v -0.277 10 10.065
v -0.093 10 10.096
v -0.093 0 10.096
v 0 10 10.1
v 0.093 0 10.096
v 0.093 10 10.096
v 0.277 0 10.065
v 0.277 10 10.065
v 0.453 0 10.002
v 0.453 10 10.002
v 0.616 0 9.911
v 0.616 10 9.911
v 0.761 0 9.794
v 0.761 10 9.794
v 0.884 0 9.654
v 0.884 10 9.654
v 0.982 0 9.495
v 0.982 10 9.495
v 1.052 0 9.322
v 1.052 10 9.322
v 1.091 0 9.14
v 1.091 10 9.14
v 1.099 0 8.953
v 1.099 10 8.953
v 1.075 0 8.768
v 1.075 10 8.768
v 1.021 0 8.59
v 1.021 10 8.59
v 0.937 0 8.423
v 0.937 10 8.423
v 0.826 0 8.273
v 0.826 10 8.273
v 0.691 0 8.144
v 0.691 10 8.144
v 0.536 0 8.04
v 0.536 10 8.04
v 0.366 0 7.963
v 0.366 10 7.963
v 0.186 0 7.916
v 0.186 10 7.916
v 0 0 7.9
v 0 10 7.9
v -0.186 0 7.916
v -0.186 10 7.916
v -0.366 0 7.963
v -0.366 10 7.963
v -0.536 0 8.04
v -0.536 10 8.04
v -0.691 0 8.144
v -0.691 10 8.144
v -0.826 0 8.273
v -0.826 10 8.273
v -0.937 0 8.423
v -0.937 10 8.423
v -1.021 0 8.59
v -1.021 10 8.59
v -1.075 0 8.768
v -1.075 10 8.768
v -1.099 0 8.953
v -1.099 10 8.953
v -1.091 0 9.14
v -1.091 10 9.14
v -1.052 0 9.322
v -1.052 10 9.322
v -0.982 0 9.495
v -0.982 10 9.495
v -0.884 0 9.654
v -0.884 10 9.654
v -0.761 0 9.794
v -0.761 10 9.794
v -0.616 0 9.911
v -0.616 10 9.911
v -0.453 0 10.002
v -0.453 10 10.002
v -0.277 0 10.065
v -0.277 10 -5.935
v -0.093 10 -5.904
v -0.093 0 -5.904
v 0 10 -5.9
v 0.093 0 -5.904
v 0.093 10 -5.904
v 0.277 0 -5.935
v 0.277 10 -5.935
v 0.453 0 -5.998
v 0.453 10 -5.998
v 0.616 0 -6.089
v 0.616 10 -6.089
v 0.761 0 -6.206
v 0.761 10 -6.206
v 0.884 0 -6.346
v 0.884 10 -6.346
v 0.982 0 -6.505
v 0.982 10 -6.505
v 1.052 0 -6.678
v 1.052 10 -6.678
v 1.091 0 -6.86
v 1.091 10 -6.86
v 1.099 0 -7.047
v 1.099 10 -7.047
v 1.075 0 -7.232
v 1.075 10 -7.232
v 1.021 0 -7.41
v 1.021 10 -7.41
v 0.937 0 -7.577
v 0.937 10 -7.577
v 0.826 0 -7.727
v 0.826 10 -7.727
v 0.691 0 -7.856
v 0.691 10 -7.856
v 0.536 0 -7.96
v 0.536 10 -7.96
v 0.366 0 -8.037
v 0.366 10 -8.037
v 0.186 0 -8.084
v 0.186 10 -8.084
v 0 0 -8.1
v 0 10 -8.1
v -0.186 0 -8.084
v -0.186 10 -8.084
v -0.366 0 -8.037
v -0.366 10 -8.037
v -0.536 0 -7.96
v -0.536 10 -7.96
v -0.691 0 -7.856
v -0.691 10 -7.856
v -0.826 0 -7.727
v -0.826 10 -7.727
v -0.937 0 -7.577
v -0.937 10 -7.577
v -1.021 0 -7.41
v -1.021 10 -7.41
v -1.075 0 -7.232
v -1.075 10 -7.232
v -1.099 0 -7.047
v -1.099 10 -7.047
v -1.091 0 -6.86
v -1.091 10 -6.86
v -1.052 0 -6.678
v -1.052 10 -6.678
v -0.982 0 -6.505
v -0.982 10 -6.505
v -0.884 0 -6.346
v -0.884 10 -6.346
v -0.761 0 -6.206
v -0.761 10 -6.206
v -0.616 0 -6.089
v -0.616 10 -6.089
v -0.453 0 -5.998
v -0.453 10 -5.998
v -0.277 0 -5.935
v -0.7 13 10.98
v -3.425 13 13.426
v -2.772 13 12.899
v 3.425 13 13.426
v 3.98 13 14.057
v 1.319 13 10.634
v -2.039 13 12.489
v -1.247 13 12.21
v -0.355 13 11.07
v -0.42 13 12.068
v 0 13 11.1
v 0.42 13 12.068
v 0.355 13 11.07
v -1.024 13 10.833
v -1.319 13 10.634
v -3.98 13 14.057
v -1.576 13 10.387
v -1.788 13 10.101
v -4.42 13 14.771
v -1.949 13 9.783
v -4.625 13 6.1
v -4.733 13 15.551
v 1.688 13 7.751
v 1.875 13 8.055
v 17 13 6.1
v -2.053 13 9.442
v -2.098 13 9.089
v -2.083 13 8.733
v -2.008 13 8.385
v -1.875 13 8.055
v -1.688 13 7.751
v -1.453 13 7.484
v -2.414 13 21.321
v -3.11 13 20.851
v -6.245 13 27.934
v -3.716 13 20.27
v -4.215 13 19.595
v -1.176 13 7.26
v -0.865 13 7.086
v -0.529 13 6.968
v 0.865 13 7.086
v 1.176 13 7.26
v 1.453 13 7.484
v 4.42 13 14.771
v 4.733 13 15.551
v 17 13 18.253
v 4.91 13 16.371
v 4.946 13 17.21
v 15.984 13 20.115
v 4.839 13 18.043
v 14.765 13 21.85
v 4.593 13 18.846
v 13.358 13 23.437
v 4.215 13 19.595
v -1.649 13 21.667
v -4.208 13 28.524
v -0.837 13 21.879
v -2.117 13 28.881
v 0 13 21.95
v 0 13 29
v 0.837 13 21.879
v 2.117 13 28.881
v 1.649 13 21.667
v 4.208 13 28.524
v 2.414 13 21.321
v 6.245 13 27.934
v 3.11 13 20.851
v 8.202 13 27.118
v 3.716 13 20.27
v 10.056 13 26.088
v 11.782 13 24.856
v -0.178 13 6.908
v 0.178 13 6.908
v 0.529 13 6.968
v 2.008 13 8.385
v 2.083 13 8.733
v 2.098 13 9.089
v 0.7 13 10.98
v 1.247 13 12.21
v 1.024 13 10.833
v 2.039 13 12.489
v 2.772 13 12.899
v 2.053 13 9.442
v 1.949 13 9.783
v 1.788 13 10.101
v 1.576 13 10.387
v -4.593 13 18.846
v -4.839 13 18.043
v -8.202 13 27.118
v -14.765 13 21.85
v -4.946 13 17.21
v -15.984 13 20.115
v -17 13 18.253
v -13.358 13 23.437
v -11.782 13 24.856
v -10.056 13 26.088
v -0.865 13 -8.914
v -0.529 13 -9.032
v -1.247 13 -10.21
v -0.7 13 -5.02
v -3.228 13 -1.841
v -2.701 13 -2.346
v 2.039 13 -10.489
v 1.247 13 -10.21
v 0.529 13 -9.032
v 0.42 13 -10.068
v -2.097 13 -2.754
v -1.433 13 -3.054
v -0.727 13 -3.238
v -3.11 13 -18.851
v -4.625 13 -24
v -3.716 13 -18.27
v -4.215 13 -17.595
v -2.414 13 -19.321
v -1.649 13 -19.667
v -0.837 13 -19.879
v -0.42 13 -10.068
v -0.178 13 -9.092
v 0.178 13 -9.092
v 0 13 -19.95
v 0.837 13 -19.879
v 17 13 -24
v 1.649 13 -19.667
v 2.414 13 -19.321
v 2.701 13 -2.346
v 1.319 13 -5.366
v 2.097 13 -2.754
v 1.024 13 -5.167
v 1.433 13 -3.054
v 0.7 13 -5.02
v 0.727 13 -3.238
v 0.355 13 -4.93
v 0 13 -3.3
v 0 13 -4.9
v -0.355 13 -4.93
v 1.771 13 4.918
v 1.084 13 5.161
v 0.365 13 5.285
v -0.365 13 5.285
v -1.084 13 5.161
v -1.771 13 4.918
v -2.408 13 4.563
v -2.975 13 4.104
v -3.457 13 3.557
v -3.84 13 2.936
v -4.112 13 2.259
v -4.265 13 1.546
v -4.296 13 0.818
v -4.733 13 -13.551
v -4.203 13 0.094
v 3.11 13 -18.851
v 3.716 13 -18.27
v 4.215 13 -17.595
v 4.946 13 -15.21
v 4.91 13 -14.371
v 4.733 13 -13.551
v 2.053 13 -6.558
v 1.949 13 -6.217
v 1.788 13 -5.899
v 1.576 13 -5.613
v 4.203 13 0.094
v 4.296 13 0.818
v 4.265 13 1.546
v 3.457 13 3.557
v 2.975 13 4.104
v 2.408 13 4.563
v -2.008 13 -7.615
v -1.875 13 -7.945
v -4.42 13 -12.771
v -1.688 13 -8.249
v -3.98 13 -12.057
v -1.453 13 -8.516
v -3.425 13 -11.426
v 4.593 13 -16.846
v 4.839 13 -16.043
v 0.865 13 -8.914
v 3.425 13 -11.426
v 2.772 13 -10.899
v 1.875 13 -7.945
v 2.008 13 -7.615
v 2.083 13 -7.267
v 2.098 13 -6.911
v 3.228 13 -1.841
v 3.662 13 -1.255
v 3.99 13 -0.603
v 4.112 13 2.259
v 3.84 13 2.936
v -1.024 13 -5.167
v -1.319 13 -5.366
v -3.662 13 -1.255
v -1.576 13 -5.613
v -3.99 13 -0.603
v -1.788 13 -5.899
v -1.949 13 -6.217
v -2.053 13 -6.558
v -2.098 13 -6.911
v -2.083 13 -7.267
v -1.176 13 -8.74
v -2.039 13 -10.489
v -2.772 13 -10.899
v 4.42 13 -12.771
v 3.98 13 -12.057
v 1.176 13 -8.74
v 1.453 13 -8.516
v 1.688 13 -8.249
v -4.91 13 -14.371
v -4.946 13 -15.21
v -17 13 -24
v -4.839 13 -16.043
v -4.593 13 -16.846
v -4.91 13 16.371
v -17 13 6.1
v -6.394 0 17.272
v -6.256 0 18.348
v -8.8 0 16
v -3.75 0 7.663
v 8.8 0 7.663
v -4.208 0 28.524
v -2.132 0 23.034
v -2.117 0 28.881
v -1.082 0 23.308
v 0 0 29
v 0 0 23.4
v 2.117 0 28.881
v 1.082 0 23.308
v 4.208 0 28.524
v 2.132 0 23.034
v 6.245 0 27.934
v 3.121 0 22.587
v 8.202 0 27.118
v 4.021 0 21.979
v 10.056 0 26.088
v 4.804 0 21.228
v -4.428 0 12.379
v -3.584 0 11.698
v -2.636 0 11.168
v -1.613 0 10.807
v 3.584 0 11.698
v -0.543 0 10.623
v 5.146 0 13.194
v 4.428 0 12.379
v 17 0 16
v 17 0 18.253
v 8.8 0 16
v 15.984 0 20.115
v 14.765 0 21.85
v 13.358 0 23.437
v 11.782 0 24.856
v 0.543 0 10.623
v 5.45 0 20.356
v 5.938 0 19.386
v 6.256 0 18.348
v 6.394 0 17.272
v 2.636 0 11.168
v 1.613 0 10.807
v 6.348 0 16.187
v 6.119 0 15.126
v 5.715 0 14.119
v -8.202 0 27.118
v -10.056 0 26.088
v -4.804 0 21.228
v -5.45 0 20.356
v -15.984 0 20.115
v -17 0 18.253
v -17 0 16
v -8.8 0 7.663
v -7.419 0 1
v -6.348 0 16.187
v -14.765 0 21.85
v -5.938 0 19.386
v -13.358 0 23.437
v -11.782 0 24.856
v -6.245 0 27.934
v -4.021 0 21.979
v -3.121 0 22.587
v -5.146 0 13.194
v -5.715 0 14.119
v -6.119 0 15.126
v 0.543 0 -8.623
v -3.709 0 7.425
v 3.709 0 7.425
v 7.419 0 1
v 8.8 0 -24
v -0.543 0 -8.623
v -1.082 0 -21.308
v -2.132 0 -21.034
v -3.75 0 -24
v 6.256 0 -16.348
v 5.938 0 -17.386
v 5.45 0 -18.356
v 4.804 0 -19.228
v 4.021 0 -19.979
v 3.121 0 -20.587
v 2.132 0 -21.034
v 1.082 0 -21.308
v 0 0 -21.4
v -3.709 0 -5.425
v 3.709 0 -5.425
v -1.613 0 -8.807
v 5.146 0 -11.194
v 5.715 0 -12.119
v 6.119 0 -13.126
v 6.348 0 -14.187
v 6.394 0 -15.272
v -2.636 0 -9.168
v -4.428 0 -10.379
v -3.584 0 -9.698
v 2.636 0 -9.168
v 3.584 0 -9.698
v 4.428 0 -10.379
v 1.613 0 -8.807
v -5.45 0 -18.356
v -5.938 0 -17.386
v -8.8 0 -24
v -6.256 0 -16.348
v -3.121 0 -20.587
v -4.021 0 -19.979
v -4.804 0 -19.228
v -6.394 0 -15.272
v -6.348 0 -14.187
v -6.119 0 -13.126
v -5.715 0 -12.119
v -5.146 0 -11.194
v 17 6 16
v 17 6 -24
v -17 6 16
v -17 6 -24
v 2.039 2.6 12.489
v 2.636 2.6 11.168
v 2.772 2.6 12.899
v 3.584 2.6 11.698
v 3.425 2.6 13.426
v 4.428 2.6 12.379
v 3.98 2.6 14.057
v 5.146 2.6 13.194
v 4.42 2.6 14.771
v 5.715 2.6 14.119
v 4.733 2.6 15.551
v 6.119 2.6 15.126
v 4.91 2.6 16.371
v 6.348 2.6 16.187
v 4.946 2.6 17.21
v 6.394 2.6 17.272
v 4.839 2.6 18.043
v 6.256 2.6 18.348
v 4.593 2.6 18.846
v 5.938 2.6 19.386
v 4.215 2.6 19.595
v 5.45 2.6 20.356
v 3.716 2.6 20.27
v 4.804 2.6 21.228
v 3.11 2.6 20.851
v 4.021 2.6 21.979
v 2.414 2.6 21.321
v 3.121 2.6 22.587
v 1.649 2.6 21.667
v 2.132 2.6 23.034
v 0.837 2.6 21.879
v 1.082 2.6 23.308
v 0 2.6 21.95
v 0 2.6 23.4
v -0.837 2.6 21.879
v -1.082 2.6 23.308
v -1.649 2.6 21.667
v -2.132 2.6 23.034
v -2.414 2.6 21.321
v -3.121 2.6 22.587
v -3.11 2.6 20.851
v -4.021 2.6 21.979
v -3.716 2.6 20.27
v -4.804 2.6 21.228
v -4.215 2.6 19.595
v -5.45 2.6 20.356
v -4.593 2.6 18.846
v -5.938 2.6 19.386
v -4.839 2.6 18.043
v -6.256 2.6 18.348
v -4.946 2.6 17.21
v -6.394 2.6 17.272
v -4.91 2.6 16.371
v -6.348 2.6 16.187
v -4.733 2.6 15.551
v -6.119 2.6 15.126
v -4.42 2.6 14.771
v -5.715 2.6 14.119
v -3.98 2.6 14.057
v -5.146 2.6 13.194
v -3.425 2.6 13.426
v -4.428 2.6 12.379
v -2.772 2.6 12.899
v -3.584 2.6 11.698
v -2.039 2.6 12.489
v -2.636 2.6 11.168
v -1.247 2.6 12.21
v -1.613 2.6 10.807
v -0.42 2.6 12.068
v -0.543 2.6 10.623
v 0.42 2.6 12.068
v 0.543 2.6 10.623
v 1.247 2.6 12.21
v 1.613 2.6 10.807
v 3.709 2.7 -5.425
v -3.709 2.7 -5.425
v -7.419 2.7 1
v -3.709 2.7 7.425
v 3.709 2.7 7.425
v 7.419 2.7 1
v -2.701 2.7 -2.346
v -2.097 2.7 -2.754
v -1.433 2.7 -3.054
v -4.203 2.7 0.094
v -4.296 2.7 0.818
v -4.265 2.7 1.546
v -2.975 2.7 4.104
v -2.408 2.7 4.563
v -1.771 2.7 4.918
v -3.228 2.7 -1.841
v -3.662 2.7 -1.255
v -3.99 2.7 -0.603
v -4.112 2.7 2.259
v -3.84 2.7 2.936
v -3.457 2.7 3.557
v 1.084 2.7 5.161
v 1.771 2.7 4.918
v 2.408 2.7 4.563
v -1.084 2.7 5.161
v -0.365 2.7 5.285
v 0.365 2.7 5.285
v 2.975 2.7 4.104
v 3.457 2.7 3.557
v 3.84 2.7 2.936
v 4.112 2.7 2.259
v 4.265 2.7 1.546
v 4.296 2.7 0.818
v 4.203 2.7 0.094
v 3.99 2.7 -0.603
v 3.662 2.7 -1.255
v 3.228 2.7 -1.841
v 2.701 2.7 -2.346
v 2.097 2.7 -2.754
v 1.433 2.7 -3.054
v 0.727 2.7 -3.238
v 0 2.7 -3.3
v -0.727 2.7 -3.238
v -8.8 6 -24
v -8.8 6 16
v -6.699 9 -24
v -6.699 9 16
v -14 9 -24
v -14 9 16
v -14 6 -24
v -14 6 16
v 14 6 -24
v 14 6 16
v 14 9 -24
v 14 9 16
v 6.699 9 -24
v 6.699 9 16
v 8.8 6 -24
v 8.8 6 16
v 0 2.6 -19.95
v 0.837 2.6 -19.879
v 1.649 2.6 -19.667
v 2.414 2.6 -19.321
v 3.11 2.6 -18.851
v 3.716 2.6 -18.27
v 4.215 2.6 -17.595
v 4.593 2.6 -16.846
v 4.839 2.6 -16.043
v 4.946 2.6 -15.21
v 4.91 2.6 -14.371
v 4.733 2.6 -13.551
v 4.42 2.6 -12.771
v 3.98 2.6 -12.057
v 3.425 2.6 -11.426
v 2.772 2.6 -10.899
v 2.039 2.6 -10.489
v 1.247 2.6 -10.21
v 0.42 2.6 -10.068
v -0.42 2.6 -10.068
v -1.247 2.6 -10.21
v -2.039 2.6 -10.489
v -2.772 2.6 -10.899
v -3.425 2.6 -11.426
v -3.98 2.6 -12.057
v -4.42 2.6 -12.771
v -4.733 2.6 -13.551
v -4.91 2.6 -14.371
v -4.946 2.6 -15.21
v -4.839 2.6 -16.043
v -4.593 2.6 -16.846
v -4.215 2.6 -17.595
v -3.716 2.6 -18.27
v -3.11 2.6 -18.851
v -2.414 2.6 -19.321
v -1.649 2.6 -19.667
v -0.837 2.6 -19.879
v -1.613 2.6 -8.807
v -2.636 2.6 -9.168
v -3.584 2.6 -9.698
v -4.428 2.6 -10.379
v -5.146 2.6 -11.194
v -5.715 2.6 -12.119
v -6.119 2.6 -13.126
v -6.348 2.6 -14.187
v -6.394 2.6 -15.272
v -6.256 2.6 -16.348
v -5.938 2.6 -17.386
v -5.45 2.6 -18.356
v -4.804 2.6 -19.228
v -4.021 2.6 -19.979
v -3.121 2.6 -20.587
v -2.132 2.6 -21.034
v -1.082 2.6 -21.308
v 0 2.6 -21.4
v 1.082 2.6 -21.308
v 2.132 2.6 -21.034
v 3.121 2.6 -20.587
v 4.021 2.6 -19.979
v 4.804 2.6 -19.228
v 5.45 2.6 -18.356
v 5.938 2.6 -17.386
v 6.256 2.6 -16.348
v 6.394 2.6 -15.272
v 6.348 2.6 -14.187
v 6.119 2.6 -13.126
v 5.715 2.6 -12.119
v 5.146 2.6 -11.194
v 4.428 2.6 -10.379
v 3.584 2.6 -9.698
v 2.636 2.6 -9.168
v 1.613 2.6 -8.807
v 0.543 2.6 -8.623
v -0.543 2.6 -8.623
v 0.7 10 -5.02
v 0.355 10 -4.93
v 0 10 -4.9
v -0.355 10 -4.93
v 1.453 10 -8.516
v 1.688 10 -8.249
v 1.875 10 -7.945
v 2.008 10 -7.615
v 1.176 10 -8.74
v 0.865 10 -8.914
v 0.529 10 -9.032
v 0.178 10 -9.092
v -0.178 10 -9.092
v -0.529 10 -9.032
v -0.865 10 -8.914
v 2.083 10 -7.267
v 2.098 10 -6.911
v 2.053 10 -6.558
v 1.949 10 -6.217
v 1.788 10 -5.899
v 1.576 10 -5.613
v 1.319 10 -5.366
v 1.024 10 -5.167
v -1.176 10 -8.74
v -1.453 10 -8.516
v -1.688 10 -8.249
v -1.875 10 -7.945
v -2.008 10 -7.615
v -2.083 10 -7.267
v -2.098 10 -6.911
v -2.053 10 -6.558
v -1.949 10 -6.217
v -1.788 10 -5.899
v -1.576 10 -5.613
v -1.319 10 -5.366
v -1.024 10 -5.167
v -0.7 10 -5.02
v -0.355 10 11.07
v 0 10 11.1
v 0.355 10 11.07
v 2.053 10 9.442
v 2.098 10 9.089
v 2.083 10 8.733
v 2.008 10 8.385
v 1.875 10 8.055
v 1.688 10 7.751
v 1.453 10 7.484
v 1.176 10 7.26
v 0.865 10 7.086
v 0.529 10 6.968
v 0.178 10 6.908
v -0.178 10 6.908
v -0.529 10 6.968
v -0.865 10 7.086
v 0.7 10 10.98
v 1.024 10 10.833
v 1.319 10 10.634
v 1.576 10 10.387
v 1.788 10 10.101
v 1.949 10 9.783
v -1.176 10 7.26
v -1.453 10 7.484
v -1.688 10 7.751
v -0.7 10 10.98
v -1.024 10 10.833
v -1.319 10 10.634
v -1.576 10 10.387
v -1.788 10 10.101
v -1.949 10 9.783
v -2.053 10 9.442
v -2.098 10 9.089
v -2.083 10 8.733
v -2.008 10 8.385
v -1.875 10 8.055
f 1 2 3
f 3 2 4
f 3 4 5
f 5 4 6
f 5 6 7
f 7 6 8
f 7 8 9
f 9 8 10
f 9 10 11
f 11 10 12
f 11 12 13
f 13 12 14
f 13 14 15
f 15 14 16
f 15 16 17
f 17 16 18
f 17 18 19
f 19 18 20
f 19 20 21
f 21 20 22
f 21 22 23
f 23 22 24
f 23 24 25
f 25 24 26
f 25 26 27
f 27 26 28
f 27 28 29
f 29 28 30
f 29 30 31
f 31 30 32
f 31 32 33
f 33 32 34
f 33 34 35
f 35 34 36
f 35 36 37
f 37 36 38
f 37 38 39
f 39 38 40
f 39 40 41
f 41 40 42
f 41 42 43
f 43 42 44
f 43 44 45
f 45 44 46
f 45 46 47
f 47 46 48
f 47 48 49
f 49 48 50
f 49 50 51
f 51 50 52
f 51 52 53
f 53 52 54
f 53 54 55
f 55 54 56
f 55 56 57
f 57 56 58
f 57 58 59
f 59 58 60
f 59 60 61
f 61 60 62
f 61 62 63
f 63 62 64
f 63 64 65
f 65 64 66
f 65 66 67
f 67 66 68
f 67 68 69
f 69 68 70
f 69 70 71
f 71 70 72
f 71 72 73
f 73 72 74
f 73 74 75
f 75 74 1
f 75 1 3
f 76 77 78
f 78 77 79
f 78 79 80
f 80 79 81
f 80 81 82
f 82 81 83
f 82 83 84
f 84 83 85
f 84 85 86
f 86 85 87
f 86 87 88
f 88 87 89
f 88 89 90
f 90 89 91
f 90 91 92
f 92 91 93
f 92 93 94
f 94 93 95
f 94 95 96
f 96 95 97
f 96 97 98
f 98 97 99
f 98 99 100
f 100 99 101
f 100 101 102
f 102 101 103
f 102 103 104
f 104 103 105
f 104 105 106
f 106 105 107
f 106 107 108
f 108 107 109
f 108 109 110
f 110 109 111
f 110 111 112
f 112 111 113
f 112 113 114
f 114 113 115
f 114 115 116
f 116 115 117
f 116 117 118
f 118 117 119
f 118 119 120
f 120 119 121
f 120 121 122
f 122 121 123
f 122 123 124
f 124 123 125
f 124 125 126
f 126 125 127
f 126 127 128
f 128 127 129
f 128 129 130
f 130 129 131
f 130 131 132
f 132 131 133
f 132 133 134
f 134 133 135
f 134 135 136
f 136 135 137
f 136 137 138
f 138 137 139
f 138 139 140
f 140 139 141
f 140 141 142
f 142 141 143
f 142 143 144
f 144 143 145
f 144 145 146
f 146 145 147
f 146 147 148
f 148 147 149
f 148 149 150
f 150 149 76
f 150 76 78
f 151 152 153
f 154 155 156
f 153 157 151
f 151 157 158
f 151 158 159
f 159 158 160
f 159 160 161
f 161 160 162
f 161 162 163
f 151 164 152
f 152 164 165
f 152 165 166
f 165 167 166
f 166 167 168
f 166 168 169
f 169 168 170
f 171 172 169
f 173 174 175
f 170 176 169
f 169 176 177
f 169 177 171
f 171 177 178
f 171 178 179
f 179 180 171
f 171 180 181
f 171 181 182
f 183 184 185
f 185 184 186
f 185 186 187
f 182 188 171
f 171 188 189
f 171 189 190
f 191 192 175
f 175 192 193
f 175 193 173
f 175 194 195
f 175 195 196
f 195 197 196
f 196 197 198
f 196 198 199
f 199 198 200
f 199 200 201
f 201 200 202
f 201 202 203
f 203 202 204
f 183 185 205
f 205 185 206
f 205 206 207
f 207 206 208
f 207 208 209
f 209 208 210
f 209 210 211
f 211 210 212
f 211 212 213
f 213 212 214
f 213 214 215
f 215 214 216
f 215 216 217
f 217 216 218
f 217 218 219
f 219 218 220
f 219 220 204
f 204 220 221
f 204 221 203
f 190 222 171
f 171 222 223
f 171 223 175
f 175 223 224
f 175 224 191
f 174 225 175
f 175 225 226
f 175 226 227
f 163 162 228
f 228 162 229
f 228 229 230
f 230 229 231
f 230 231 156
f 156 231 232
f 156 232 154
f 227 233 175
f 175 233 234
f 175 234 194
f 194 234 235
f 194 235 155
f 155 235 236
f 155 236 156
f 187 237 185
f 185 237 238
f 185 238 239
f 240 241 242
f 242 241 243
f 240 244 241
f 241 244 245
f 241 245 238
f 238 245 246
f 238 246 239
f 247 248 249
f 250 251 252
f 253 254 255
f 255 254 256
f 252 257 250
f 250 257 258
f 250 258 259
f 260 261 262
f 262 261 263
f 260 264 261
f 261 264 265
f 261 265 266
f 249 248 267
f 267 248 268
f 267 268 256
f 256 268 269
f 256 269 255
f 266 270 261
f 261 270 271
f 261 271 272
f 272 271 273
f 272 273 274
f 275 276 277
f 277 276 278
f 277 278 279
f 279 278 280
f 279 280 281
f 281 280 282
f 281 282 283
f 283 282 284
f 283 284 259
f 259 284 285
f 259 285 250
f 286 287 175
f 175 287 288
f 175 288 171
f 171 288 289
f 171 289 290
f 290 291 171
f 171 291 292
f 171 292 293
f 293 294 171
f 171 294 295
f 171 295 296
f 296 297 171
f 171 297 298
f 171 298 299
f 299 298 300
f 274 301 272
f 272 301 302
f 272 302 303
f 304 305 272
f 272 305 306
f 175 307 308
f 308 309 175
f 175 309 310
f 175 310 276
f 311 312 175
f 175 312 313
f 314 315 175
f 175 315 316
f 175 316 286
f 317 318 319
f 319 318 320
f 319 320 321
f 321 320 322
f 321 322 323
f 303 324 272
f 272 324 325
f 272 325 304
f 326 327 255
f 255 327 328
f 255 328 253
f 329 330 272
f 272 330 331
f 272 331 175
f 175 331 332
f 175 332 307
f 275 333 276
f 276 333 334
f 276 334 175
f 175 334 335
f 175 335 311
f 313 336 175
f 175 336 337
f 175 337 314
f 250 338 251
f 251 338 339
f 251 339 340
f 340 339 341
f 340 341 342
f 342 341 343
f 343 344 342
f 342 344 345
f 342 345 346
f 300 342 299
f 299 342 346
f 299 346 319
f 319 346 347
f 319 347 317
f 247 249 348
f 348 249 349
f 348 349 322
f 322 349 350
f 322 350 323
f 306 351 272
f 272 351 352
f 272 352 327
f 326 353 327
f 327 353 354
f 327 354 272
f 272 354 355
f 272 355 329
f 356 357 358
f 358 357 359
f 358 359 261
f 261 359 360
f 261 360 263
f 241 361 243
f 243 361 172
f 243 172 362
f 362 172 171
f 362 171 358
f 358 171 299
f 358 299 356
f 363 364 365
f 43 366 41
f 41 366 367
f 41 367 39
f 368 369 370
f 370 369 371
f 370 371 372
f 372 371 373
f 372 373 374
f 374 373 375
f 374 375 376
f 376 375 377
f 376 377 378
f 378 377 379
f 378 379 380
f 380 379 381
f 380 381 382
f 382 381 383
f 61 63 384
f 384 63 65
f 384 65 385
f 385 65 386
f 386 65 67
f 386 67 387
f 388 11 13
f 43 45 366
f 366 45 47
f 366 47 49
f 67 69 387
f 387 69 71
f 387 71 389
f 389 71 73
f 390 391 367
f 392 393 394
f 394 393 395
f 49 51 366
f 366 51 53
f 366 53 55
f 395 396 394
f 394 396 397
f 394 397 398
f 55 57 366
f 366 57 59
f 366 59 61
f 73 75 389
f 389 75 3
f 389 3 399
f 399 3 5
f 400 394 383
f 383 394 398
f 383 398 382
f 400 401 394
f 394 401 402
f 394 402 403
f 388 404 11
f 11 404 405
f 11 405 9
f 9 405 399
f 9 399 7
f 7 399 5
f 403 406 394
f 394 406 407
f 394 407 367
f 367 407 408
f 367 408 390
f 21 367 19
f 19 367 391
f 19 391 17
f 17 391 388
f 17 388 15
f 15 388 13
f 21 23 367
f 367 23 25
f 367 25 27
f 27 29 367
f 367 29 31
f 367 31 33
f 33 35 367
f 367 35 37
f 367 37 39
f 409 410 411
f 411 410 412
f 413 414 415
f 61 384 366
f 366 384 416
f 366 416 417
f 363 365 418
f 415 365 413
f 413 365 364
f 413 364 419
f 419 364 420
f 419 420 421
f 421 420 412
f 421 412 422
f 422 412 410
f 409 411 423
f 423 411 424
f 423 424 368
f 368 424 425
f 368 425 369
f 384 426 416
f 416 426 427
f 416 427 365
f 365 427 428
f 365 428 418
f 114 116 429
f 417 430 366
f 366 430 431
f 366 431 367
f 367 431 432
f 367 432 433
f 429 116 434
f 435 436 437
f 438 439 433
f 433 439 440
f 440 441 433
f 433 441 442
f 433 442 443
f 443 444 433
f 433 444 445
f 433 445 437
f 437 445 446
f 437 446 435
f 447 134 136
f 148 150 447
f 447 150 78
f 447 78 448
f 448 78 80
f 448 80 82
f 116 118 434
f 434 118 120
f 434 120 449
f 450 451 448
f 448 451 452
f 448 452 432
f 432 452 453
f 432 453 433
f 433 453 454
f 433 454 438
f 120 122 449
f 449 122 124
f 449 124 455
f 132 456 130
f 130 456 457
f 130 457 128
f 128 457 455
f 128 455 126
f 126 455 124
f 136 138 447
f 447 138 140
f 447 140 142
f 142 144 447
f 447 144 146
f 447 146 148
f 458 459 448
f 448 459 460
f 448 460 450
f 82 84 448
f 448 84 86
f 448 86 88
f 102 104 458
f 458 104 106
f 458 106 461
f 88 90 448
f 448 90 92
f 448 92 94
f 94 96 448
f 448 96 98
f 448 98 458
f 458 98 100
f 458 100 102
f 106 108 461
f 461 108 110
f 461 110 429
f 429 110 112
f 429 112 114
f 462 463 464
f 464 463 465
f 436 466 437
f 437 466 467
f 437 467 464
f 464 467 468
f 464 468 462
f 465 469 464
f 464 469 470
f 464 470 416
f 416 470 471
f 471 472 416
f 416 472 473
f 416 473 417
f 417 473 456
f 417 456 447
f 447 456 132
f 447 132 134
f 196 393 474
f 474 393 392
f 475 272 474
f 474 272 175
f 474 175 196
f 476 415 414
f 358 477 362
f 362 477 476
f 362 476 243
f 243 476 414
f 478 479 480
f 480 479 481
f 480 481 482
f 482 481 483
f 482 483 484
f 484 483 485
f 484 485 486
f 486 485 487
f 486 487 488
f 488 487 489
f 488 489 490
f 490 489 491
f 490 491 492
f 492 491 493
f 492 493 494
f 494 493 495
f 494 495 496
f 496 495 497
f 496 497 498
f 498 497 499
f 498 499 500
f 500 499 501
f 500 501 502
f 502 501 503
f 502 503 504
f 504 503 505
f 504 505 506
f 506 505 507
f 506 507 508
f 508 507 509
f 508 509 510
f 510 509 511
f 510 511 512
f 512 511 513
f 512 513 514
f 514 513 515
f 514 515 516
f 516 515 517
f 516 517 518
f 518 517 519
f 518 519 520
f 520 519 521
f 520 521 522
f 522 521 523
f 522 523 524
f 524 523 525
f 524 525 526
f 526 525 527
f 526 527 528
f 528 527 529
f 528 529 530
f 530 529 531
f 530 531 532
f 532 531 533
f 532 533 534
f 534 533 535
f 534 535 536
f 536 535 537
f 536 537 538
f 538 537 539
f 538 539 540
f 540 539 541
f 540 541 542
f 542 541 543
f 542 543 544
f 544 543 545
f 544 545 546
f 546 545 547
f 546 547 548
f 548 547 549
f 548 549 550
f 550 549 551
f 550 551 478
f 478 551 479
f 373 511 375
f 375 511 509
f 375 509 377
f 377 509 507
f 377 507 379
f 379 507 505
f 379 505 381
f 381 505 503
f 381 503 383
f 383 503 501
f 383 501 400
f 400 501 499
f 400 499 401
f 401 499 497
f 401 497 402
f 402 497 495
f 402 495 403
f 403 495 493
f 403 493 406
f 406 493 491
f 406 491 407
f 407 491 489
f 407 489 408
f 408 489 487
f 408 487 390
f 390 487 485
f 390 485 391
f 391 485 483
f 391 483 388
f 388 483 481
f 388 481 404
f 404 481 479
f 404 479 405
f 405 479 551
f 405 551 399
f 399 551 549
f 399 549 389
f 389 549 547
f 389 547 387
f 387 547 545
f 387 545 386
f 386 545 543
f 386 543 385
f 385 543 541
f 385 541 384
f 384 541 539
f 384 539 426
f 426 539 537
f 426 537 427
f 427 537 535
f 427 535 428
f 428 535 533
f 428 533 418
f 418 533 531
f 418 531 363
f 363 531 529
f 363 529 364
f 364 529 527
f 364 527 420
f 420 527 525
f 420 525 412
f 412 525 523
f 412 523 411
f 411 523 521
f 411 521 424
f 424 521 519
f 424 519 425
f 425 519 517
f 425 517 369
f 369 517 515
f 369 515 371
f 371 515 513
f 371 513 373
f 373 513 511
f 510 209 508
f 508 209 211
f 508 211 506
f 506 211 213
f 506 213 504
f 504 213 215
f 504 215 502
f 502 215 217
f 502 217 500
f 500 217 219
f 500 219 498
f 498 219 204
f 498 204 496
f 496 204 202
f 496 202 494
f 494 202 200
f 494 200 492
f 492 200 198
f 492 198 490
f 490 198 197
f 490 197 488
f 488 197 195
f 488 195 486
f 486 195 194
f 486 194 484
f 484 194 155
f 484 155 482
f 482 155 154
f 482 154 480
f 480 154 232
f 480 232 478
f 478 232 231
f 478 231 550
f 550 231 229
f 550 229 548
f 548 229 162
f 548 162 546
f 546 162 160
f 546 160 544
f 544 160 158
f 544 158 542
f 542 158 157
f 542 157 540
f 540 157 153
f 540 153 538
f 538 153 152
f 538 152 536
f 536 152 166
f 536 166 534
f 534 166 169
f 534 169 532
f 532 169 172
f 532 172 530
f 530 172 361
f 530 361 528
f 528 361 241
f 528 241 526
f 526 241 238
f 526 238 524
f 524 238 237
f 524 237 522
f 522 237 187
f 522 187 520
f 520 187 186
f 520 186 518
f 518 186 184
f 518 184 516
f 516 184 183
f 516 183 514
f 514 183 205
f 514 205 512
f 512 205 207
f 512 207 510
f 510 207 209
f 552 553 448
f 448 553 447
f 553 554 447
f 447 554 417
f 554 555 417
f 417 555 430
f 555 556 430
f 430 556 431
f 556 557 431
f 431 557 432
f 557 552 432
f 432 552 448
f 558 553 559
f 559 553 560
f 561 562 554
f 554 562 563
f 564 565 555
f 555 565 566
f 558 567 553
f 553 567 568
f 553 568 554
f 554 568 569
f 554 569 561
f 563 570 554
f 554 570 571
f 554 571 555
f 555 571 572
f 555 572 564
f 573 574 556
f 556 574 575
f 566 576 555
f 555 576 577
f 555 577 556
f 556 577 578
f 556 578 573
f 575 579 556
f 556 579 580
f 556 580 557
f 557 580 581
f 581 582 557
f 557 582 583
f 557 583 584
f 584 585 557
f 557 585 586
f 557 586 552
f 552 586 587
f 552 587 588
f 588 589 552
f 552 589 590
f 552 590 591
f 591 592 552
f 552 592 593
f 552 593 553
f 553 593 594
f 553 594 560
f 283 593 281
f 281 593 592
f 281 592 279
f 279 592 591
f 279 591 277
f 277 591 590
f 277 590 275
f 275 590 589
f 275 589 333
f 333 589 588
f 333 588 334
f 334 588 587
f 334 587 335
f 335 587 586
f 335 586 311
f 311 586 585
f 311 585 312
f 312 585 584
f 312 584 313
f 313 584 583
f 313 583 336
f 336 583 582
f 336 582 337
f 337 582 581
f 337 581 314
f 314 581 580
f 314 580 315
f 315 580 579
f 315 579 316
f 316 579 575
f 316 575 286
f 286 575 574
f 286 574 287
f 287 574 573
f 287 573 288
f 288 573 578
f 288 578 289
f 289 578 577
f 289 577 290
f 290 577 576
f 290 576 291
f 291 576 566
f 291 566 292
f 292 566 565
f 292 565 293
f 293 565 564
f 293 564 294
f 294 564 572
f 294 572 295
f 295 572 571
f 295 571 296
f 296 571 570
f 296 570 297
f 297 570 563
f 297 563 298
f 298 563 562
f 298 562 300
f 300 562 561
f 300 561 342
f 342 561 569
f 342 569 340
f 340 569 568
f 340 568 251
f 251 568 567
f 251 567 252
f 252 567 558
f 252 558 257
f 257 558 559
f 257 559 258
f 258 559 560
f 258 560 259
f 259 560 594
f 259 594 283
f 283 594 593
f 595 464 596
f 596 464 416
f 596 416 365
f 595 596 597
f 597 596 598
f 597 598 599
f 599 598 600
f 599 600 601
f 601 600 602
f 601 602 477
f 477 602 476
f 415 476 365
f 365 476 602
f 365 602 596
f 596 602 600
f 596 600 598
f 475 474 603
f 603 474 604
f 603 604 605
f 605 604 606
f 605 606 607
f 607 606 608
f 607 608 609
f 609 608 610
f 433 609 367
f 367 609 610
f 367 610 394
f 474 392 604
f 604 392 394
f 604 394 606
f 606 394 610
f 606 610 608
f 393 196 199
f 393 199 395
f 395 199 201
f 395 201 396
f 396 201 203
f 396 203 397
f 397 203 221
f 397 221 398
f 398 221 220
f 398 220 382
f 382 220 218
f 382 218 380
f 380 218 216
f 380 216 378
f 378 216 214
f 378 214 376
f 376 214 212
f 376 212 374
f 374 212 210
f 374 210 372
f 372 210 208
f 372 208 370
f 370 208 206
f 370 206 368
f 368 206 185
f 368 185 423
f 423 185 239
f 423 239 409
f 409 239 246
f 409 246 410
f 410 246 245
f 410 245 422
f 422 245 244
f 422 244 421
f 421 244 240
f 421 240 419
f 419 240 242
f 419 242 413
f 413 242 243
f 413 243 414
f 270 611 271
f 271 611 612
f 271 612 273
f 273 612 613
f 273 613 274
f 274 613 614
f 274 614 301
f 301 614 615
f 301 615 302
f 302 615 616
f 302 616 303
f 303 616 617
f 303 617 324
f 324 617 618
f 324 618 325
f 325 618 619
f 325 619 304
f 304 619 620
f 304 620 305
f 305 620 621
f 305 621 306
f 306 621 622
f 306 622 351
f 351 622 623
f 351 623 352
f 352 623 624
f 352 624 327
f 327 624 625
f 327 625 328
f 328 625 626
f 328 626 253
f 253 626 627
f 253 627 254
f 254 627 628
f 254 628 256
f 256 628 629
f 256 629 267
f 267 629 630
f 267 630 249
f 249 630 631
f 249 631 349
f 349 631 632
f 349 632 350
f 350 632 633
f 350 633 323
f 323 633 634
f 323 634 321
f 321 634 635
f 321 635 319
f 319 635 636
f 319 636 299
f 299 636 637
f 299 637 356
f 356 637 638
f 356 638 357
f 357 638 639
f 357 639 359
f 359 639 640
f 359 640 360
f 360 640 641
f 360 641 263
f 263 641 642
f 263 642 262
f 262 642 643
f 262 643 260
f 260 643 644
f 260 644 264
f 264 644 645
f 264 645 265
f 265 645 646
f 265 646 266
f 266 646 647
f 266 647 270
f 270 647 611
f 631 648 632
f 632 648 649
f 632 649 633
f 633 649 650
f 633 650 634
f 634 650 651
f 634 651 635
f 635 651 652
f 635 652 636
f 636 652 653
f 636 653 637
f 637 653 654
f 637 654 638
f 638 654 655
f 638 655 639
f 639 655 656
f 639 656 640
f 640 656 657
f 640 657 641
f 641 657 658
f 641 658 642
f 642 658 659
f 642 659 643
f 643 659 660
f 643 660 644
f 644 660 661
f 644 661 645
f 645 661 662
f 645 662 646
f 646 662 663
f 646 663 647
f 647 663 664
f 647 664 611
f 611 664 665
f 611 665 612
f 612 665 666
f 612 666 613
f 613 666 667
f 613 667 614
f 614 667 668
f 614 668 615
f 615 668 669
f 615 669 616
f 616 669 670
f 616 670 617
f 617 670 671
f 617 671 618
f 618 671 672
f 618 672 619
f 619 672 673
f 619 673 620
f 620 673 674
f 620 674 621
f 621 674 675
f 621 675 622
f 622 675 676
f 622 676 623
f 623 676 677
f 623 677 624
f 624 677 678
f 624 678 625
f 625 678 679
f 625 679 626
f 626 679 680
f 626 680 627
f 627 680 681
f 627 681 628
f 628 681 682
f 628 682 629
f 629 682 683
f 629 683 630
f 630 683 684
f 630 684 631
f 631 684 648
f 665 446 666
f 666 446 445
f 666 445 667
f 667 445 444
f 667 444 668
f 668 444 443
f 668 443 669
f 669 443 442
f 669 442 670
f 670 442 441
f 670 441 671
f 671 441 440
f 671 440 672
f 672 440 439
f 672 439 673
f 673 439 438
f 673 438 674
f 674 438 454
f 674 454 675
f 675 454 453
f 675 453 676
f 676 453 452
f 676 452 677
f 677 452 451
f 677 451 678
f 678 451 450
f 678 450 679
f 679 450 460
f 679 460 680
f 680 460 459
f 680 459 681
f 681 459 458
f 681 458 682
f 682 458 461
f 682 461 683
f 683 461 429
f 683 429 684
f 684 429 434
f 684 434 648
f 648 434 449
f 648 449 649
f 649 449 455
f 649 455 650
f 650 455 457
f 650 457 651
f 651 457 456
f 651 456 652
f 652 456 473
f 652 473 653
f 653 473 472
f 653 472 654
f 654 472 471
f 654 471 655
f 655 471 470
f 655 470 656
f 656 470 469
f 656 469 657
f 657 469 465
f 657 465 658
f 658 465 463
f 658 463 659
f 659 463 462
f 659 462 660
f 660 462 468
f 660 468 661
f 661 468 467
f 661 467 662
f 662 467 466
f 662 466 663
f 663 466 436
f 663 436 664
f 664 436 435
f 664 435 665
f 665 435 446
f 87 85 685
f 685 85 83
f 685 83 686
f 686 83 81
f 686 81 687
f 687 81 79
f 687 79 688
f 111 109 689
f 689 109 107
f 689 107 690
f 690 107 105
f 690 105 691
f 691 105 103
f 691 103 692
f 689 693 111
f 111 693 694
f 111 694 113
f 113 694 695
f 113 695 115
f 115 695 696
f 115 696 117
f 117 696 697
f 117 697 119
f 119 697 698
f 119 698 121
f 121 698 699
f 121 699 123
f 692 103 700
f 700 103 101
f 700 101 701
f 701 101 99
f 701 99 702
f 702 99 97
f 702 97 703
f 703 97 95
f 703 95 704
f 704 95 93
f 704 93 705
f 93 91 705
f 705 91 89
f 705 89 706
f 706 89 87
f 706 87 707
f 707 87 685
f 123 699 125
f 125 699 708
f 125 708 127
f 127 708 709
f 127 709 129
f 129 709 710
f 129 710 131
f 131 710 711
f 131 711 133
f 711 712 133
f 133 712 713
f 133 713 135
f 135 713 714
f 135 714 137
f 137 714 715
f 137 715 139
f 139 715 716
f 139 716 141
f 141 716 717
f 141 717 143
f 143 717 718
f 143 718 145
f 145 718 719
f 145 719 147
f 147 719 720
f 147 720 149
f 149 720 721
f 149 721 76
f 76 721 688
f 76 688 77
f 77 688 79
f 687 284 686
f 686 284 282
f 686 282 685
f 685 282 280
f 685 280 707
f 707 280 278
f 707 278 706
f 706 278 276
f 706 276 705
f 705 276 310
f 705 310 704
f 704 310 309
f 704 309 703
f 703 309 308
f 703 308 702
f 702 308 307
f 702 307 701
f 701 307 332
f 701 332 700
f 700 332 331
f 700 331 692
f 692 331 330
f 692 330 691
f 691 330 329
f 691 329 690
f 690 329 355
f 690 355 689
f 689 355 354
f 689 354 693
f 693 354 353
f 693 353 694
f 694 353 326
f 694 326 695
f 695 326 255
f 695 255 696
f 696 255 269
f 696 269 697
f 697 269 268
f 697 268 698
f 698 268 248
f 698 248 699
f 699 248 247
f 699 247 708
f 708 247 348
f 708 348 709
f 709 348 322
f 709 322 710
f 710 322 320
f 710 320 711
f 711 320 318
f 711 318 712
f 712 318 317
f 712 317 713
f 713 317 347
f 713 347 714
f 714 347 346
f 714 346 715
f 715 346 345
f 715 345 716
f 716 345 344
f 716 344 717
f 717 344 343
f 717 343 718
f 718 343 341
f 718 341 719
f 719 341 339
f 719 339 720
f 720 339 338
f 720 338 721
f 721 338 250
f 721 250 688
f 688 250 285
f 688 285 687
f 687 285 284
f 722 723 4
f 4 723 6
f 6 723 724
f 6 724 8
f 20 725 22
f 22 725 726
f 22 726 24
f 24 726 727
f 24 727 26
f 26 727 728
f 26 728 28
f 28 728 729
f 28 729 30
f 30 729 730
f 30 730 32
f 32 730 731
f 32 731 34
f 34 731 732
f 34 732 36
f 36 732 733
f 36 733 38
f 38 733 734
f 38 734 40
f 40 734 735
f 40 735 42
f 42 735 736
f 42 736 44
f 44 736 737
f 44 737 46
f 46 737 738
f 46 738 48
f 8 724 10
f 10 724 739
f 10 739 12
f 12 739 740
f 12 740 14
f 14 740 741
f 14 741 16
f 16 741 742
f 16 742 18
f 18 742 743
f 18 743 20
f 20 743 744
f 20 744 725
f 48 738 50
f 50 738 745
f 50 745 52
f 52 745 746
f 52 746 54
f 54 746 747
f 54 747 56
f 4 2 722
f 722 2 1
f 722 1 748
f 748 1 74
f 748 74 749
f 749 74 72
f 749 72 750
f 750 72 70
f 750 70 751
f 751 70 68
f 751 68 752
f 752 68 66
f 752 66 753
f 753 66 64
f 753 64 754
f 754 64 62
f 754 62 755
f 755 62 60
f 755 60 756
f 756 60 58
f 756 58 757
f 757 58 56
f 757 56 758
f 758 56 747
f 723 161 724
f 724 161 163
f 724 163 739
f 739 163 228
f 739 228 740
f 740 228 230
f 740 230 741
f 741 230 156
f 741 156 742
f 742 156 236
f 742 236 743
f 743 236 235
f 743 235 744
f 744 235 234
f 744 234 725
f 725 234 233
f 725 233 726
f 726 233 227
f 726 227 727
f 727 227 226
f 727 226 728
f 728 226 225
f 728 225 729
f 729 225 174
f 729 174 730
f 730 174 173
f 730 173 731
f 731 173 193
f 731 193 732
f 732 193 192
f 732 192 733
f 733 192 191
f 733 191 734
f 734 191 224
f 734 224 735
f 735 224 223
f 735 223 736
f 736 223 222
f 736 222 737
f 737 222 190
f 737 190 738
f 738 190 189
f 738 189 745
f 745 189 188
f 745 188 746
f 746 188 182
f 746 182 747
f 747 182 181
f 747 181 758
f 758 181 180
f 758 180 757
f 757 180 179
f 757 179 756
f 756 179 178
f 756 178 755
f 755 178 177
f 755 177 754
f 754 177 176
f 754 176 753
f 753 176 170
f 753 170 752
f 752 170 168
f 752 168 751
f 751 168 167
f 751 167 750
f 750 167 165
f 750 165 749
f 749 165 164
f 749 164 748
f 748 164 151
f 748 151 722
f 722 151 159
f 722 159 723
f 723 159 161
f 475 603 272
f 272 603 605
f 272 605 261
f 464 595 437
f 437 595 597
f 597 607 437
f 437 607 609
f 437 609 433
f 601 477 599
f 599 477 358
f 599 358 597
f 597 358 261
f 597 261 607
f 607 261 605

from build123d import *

# Parameters (mm, degrees)
SKETCH1_W           = 34
SKETCH1_H           = 58
BOSS_EXTRUDE1_DEPTH = 13
CUT_EXTRUDE1_DEPTH  = 2.7
SKETCH5_R           = 4.3
CUT_EXTRUDE2_DEPTH  = 36.158071619
CUT_EXTRUDE3_DEPTH  = 45
CUT_EXTRUDE4_DEPTH  = 37.041642582
SKETCH9_R           = 1.1
CUT_EXTRUDE5_DEPTH  = 13
SKETCH10_R          = 2.1
CUT_EXTRUDE6_DEPTH  = 3
SKETCH12_W          = 34
SKETCH12_H          = 5
CUT_EXTRUDE7_DEPTH  = 15


with BuildPart() as part:
    # Sketch1 → Boss-Extrude1 (new body)
    with BuildSketch(Plane(origin=(0, 0, 0), x_dir=(1, 0, 0), z_dir=(0, 1, 0))):
        Rectangle(SKETCH1_W, SKETCH1_H)
    extrude(amount=BOSS_EXTRUDE1_DEPTH)

    # Sketch3 → Cut-Revolve1 (revolve, cut)
    with BuildSketch(Plane(origin=(0, 0, 0), x_dir=(0, 0, -1), z_dir=(1, 0, 0)), mode=Mode.PRIVATE) as cut_revolve1_sk:
        Polygon((-17, 13), (-12.05, 13), (-12.05, 2.6), (-10.6, 2.6), (-10.6, 0), (-17, 0), align=None)
    revolve(cut_revolve1_sk.sketch.rotate(Axis((0, 13, 17), (0, -1, 0)), 180), axis=Axis((0, 13, 17), (0, -1, 0)), mode=Mode.SUBTRACT)

    # Sketch4 → Cut-Extrude1 (cut)
    with BuildSketch(Plane.XZ):
        Polygon((3.70947548, -5.425), (7.418950959, 1), (3.70947548, 7.425), (-3.70947548, 7.425), (-7.418950959, 1), (-3.70947548, -5.425), align=None)
    extrude(amount=-CUT_EXTRUDE1_DEPTH, mode=Mode.SUBTRACT)

    # Sketch5 → Cut-Extrude2 (cut, through all)
    with BuildSketch(Plane.XZ.offset(-2.7)):
        with Locations(Location((0, 1, 0), (0, 0, 270))):
            Circle(SKETCH5_R)
    extrude(amount=-CUT_EXTRUDE2_DEPTH, mode=Mode.SUBTRACT)

    # Sketch6 → Cut-Extrude3 (cut)
    with BuildSketch(Plane(origin=(0, 0, -29), x_dir=(-1, 0, 0), z_dir=(0, 0, -1))):
        Polygon((-17, 6), (-14, 6), (-14, 9), (-6.699377385, 9), (-8.8, 6), (-8.8, 0), (-17, 0), align=None)
        Polygon((8.8, 0), (17, 0), (17, 6), (14, 6), (14, 9), (6.699377385, 9), (8.8, 6), align=None)
    extrude(amount=-CUT_EXTRUDE3_DEPTH, mode=Mode.SUBTRACT)

    # Sketch7 → Cut-Extrude4 (cut, through all)
    with BuildSketch(Plane(origin=(0, 13, 0), x_dir=(1, 0, 0), z_dir=(0, 1, 0))):
        with BuildLine():
            Line((17, -29), (17, -18.253317763))
            ThreePointArc((17, -18.253317763), (10.05598304, -26.088042865), (1.4e-08, -29))
            Line((1.4e-08, -29), (17, -29))
        make_face()
        with BuildLine():
            Line((-17, -29), (1.4e-08, -29))
            ThreePointArc((1.4e-08, -29), (-10.055983028, -26.088042873), (-17, -18.253317763))
            Line((-17, -18.253317763), (-17, -29))
        make_face()
    extrude(amount=-CUT_EXTRUDE4_DEPTH, mode=Mode.SUBTRACT)

    # Sketch11 → Cut-Revolve2 (revolve, cut)
    with BuildSketch(Plane(origin=(0, 0, 0), x_dir=(0, 0, -1), z_dir=(1, 0, 0))):
        Polygon((15, 0), (15, 13), (19.95, 13), (19.95, 2.6), (21.4, 2.6), (21.4, 0), align=None)
    revolve(axis=Axis((0, 0, -15), (0, 1, 0)), mode=Mode.SUBTRACT)

    # Sketch9 → Cut-Extrude5 (cut)
    with BuildSketch(Plane.XZ):
        with Locations(Location((0, -7, 0), (0, 0, 270))):
            Circle(SKETCH9_R)
        with Locations(Location((0, 9, 0), (0, 0, 270))):
            Circle(SKETCH9_R)
    extrude(amount=-CUT_EXTRUDE5_DEPTH, mode=Mode.SUBTRACT)

    # Sketch10 → Cut-Extrude6 (cut)
    with BuildSketch(Plane(origin=(0, 13, 0), x_dir=(1, 0, 0), z_dir=(0, 1, 0))):
        with Locations(Location((0, 7, 0), (0, 0, 270))):
            Circle(SKETCH10_R)
        with Locations(Location((0, -9, 0), (0, 0, 270))):
            Circle(SKETCH10_R)
    extrude(amount=-CUT_EXTRUDE6_DEPTH, mode=Mode.SUBTRACT)

    # Sketch12 → Cut-Extrude7 (cut)
    with BuildSketch(Plane(origin=(0, 13, 0), x_dir=(1, 0, 0), z_dir=(0, 1, 0))):
        with Locations((0, 26.5)):
            Rectangle(SKETCH12_W, SKETCH12_H)
    extrude(amount=-CUT_EXTRUDE7_DEPTH, mode=Mode.SUBTRACT)


solid = part.part
